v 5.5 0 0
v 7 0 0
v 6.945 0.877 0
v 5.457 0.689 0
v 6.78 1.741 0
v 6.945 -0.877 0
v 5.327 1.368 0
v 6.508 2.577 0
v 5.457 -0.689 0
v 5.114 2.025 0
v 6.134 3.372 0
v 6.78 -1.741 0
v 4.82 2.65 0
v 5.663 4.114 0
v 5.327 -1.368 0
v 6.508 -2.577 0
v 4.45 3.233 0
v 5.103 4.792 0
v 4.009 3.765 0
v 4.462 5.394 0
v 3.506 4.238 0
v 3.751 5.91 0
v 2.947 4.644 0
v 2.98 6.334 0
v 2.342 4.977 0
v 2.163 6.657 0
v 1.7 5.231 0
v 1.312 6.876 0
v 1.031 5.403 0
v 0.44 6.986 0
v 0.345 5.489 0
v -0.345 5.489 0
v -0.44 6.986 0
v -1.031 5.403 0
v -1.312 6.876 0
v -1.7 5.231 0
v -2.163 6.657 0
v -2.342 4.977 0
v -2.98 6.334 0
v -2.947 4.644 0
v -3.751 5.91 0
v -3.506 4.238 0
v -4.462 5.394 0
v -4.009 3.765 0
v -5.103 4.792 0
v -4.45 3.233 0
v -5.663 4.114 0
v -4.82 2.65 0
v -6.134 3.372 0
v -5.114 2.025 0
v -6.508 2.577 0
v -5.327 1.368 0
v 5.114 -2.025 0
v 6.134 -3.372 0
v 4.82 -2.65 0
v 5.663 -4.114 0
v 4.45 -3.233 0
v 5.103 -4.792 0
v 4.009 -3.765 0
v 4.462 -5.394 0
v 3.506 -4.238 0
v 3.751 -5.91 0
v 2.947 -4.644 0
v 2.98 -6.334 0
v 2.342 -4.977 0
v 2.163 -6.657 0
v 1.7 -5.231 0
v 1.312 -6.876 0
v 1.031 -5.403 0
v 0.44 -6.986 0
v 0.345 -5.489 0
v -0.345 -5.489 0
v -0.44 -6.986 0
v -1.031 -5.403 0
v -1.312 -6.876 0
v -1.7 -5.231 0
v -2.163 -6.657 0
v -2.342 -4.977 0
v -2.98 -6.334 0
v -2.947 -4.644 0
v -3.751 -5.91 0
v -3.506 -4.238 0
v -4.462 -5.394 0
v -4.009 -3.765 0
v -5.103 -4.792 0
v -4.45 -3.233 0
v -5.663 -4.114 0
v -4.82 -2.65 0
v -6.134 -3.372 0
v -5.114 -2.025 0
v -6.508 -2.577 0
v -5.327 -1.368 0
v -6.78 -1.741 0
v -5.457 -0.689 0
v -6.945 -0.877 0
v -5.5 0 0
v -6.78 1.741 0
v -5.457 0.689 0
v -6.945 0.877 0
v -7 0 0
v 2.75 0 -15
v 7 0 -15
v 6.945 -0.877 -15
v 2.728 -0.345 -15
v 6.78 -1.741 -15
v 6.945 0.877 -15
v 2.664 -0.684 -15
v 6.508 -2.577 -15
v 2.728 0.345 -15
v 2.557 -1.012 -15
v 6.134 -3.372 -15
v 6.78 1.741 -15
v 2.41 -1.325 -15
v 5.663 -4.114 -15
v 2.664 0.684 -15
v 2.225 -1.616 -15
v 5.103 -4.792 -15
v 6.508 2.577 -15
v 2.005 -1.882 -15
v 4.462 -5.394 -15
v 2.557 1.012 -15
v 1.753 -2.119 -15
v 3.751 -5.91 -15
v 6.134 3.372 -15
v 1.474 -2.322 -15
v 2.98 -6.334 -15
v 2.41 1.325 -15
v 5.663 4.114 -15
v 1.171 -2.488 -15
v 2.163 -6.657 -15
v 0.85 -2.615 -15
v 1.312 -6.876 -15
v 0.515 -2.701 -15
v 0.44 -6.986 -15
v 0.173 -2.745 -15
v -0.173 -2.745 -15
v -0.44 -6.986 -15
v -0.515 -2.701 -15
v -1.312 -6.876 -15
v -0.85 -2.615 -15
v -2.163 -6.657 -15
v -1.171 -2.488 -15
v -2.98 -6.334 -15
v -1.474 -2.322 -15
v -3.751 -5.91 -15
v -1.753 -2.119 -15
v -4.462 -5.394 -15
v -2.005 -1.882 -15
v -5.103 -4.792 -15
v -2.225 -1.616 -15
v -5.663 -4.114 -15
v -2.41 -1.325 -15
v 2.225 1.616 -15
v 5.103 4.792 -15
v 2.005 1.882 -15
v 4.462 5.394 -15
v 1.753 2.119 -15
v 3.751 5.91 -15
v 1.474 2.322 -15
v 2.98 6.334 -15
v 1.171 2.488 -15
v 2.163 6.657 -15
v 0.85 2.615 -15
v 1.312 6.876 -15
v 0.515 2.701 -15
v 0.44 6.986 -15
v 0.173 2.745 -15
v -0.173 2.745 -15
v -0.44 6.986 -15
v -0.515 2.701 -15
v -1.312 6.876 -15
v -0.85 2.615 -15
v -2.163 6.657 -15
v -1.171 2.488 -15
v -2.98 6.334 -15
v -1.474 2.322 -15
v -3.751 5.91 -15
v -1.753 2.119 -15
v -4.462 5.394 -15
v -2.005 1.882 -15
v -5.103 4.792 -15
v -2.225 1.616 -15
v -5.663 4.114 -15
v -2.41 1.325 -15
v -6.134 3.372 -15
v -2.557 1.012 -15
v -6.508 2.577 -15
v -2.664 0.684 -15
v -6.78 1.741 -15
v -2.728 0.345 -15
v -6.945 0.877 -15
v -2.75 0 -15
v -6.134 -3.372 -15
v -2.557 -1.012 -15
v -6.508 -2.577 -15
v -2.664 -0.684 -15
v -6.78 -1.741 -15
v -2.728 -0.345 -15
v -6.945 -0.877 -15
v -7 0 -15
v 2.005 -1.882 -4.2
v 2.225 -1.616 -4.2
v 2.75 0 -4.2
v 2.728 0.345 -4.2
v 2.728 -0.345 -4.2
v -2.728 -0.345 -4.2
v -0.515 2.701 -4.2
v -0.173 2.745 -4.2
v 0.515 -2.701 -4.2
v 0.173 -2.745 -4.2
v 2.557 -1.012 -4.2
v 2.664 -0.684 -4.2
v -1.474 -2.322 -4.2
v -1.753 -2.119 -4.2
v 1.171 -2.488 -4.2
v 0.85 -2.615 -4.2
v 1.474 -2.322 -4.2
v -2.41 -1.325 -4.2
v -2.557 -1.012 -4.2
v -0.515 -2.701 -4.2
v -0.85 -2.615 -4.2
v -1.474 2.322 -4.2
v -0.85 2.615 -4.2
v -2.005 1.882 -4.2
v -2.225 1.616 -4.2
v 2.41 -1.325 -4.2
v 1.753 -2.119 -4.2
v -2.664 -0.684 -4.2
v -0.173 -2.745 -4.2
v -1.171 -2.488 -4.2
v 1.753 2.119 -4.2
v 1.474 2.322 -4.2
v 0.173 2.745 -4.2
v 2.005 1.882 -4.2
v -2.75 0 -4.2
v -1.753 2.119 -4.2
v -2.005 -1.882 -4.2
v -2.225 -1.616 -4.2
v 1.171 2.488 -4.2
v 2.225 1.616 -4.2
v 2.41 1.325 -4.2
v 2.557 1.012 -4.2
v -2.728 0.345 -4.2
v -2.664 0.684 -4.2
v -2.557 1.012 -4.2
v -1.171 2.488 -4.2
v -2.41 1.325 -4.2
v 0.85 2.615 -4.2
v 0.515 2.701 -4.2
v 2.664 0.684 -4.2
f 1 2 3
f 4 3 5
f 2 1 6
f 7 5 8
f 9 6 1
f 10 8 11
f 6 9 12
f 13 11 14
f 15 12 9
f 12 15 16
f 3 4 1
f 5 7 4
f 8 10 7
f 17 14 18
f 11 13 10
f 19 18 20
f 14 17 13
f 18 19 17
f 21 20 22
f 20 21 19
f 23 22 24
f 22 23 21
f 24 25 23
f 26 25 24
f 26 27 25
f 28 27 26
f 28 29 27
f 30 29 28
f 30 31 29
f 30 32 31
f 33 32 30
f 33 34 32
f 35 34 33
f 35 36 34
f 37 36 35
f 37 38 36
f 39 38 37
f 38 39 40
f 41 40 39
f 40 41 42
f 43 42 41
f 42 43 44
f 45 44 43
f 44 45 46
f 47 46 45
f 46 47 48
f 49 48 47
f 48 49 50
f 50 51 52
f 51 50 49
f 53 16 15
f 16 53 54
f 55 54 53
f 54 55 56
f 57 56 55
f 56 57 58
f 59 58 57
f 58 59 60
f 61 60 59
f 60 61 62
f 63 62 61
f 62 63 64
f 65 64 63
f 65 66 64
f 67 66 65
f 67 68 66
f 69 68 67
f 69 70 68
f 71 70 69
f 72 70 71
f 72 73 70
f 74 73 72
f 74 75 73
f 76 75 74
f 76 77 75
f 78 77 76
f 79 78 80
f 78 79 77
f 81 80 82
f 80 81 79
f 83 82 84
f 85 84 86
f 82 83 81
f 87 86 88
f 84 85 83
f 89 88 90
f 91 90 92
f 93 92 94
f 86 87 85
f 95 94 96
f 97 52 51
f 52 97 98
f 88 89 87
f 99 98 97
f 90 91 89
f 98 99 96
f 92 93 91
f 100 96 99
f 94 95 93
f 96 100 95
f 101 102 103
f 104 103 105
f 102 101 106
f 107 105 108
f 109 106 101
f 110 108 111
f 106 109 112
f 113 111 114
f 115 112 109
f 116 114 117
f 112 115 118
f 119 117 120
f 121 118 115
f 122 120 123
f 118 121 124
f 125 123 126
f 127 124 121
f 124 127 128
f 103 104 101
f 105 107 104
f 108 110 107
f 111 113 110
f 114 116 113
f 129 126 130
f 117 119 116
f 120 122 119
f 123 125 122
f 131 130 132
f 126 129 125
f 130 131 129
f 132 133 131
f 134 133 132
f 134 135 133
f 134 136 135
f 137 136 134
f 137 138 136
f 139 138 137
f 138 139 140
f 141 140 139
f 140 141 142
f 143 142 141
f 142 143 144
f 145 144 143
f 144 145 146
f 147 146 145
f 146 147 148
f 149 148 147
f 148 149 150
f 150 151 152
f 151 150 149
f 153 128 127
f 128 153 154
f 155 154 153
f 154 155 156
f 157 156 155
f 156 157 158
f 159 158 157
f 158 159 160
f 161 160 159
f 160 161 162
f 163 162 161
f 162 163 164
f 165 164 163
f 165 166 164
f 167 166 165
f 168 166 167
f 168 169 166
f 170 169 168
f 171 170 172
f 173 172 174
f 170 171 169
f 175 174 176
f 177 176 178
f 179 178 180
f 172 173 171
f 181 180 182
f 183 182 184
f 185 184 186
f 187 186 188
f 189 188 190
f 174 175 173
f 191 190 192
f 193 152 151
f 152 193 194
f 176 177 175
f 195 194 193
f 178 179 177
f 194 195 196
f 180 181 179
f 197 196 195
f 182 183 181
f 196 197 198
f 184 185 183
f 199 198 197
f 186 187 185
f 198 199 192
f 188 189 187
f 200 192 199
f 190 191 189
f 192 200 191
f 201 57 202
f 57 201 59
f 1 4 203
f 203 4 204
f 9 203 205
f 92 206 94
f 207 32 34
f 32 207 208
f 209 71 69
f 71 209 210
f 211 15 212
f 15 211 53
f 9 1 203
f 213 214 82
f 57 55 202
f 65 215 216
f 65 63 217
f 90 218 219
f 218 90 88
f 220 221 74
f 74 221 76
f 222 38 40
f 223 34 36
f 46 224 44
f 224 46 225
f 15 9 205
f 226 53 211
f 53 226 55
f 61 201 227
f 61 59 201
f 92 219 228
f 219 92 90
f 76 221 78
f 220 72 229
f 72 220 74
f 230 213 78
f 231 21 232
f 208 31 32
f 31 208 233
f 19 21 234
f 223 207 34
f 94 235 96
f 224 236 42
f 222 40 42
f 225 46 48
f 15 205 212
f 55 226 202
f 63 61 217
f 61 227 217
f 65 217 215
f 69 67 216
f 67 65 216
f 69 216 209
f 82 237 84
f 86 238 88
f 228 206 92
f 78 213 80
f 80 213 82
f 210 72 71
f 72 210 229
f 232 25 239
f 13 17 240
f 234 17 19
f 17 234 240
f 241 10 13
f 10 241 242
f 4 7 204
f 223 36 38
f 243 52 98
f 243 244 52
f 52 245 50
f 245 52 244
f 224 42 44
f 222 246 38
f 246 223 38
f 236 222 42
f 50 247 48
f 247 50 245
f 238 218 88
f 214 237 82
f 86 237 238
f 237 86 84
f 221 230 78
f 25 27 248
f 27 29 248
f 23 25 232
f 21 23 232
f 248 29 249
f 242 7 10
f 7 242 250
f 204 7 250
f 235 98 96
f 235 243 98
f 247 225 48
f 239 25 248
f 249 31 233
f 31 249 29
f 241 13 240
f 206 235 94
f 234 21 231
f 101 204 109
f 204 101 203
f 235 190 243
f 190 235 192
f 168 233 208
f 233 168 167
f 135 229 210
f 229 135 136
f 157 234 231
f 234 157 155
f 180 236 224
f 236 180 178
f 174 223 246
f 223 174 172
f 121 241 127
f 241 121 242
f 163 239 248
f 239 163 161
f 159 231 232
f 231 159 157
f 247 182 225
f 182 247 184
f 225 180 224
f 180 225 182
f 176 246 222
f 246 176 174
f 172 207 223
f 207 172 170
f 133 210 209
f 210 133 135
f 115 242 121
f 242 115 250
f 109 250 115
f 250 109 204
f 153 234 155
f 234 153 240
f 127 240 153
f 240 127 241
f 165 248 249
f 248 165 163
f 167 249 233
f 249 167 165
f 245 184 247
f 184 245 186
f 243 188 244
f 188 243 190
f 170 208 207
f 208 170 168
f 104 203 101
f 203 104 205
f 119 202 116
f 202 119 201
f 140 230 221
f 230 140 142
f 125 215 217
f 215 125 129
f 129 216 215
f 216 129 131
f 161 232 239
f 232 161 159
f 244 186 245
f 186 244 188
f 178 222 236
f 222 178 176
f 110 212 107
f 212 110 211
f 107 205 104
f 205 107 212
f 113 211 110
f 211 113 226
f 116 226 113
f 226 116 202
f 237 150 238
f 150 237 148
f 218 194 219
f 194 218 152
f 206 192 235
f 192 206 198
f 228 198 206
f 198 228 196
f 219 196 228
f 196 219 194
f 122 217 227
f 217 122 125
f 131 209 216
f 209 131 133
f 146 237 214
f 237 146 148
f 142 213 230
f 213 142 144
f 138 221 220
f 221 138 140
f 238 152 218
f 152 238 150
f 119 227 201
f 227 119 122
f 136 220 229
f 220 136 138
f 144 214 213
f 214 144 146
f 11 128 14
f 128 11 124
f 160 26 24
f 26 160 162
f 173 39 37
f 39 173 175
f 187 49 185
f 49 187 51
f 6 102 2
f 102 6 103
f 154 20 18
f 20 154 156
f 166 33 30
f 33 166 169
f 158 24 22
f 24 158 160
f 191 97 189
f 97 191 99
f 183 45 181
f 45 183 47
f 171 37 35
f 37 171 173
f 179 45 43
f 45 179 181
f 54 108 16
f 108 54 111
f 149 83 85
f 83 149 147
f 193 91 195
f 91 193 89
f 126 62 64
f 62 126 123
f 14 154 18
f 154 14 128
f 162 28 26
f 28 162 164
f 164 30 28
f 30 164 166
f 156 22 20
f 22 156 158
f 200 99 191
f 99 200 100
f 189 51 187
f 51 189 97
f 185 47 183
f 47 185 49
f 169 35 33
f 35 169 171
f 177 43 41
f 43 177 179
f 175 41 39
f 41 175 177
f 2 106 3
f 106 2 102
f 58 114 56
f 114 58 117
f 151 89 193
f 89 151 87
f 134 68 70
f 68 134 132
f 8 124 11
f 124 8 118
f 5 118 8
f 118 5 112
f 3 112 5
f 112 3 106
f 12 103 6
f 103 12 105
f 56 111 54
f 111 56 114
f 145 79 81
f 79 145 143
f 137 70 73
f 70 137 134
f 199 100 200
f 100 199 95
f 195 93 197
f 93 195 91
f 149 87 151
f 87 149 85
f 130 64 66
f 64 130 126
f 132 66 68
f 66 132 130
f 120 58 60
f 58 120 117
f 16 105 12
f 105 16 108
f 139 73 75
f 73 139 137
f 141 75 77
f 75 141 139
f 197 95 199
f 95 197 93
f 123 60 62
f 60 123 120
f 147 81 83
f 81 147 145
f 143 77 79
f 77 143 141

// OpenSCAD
$fn = 50;


difference() {
	union() {
		translate(v = [0, 0, -15.0000000000]) {
			cylinder(h = 15, r = 7.0000000000);
		}
		cylinder(h = 0, r = 10.0000000000);
	}
	union() {
		translate(v = [0, 0, 0]) {
			rotate(a = [0, 0, 0]) {
				difference() {
					union() {
						#translate(v = [0, 0, -15.0000000000]) {
							cylinder(h = 15, r = 2.2500000000);
						}
						#translate(v = [0, 0, -4.2000000000]) {
							cylinder(h = 4.2000000000, r1 = 2.7500000000, r2 = 5.5000000000);
						}
						#translate(v = [0, 0, -15.0000000000]) {
							cylinder(h = 15, r = 2.7500000000);
						}
						#translate(v = [0, 0, -15.0000000000]) {
							cylinder(h = 15, r = 2.2500000000);
						}
					}
					union();
				}
			}
		}
	}
}
